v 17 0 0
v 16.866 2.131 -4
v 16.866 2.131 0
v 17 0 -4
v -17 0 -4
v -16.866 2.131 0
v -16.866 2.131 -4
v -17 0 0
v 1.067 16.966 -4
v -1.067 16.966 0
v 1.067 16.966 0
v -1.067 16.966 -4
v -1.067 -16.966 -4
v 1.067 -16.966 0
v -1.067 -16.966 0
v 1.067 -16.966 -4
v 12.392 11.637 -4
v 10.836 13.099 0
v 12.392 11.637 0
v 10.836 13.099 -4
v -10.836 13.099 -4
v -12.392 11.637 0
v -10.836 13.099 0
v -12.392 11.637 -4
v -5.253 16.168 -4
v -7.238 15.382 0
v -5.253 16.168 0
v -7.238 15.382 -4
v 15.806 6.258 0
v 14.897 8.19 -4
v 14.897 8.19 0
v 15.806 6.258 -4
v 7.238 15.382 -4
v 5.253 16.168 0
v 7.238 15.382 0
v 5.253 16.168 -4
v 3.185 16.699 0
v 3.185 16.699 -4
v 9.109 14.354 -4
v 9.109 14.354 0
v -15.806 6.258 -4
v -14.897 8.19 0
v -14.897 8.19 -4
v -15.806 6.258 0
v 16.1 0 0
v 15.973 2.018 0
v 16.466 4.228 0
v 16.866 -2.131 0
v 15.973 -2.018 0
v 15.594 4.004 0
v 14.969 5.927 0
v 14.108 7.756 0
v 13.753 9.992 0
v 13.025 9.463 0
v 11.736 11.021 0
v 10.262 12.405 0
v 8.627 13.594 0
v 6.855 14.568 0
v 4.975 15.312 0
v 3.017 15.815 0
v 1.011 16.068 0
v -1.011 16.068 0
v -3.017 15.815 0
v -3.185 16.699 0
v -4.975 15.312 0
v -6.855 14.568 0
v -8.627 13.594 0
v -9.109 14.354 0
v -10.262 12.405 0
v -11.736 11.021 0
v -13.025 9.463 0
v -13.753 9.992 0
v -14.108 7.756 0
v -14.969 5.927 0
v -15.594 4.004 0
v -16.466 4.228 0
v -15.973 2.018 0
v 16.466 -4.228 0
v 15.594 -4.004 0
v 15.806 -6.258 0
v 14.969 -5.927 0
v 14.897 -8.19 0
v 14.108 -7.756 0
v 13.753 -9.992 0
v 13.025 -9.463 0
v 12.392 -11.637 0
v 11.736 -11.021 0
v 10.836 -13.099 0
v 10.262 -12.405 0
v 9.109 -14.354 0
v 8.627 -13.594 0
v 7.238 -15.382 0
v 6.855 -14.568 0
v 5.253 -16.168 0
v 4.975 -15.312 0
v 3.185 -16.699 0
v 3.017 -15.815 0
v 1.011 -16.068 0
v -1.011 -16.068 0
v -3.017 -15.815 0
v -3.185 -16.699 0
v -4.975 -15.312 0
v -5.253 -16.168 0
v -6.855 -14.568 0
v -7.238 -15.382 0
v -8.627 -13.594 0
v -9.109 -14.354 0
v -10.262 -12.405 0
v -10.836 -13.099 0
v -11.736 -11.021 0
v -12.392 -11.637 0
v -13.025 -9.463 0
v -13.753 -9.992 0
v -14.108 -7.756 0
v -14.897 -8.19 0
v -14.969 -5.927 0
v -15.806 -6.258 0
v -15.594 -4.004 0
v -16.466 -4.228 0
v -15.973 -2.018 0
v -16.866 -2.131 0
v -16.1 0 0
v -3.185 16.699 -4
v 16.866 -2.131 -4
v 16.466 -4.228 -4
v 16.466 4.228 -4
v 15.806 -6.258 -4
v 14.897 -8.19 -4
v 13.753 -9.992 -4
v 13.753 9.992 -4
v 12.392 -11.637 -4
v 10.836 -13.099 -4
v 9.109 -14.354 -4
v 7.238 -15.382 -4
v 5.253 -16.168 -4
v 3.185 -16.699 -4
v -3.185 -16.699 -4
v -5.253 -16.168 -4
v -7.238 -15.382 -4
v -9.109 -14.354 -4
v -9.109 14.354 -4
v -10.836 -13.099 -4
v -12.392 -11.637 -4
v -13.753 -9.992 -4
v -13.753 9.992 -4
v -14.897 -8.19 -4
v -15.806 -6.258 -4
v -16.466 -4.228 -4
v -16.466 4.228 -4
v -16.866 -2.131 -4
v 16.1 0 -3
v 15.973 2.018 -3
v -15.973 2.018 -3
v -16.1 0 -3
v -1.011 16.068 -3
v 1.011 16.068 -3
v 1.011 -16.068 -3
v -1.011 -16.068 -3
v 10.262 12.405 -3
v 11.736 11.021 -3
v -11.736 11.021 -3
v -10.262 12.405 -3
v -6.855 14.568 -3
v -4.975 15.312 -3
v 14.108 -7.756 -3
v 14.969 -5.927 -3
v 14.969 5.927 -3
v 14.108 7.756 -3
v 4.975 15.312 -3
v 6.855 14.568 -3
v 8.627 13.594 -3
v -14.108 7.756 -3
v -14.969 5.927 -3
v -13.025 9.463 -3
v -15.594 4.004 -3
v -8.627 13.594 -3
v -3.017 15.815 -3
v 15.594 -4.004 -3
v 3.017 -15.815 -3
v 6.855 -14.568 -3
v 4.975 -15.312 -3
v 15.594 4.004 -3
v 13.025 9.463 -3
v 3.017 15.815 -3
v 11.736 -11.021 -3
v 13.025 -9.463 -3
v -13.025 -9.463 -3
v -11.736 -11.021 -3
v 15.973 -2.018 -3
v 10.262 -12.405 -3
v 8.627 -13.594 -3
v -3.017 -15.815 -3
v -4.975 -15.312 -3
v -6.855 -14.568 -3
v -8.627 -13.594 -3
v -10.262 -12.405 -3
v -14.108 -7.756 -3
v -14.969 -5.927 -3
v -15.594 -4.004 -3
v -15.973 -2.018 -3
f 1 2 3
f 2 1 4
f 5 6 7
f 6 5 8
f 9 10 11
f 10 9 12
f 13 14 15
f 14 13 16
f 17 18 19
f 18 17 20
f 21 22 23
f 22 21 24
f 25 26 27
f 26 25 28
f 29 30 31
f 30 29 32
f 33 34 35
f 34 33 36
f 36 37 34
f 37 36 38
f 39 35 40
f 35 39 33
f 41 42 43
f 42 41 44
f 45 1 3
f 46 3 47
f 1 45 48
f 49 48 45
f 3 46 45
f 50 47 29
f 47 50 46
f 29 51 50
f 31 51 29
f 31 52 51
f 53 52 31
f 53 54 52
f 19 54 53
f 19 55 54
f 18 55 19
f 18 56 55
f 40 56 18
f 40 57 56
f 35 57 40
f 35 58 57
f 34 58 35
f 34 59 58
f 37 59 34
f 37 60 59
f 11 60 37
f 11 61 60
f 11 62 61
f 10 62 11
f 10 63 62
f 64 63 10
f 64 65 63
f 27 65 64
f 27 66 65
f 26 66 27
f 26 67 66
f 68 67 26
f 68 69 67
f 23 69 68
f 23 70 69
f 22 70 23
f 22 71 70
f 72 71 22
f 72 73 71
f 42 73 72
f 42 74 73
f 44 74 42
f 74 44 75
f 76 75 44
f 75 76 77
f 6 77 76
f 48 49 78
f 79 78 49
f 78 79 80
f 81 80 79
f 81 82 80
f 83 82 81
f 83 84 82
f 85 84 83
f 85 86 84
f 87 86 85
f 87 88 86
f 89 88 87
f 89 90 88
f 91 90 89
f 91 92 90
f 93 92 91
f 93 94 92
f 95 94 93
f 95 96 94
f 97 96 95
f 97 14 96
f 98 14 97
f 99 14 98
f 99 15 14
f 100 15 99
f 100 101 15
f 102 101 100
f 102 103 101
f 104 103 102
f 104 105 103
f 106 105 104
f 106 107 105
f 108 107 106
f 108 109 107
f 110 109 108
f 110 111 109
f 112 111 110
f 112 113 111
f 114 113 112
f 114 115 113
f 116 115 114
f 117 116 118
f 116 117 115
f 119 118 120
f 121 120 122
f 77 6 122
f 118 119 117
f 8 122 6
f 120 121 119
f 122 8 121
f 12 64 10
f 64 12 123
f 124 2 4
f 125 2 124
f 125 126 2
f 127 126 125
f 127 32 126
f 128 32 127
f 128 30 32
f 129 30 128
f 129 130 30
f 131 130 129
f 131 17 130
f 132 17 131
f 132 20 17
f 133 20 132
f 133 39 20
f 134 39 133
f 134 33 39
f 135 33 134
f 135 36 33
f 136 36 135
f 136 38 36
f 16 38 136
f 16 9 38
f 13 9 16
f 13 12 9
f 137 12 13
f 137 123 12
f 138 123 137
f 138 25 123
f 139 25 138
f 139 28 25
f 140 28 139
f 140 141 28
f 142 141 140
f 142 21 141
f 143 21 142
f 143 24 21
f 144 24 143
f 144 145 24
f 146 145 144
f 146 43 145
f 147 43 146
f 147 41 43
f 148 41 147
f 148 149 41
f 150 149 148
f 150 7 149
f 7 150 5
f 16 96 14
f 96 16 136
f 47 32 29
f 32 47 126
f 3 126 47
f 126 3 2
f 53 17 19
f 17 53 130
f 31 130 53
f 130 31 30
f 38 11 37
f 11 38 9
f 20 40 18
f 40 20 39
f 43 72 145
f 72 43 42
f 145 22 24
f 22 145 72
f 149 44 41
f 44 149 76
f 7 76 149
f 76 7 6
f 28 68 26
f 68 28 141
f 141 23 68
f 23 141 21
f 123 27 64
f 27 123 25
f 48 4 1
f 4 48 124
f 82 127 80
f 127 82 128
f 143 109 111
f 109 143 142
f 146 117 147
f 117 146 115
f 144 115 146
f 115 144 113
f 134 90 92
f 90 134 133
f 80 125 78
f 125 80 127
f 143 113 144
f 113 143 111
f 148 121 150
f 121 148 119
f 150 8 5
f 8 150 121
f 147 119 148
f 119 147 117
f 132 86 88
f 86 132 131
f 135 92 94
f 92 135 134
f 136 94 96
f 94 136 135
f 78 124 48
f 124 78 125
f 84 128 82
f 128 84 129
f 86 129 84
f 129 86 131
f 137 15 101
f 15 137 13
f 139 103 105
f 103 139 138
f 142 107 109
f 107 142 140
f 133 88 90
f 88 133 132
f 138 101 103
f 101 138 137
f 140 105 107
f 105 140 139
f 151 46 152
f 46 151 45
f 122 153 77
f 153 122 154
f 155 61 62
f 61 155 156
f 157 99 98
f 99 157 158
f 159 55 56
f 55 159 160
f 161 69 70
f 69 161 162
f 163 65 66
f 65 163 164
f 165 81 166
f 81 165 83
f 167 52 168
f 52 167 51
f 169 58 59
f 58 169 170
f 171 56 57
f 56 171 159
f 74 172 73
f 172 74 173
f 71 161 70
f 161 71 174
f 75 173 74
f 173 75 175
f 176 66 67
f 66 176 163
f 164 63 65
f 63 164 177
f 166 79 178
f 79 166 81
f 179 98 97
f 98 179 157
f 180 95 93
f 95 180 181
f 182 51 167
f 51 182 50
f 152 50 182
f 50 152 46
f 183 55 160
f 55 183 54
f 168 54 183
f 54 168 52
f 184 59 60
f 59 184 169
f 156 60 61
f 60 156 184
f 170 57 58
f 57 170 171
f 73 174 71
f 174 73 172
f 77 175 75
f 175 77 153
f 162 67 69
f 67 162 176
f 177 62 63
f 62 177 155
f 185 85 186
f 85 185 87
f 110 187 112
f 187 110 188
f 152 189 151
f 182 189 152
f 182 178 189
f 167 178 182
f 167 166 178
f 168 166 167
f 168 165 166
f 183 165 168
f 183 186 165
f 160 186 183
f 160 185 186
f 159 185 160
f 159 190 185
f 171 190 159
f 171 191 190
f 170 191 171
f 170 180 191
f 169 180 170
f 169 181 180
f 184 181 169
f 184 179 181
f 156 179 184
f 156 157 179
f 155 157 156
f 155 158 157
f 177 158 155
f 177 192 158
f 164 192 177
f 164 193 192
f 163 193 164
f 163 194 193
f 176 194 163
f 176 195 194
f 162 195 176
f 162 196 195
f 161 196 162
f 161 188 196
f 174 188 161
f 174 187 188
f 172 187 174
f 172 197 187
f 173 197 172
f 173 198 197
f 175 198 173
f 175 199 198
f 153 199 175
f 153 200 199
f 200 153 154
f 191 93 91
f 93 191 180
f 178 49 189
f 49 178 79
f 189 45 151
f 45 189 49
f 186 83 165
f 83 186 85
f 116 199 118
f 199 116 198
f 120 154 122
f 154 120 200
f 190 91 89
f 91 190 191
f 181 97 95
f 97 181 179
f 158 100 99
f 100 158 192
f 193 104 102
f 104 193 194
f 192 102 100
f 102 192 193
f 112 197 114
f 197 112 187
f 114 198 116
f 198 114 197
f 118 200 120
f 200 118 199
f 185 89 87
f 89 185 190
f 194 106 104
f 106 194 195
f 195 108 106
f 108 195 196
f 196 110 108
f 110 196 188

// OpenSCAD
$fn = 50;


difference() {
	union() {
		translate(v = [0, 0, -4.0000000000]) {
			cylinder(h = 4, r = 17.0000000000);
		}
	}
	union() {
		#translate(v = [0, 0, -3.0000000000]) {
			cylinder(h = 3, r = 16.1000000000);
		}
	}
}
